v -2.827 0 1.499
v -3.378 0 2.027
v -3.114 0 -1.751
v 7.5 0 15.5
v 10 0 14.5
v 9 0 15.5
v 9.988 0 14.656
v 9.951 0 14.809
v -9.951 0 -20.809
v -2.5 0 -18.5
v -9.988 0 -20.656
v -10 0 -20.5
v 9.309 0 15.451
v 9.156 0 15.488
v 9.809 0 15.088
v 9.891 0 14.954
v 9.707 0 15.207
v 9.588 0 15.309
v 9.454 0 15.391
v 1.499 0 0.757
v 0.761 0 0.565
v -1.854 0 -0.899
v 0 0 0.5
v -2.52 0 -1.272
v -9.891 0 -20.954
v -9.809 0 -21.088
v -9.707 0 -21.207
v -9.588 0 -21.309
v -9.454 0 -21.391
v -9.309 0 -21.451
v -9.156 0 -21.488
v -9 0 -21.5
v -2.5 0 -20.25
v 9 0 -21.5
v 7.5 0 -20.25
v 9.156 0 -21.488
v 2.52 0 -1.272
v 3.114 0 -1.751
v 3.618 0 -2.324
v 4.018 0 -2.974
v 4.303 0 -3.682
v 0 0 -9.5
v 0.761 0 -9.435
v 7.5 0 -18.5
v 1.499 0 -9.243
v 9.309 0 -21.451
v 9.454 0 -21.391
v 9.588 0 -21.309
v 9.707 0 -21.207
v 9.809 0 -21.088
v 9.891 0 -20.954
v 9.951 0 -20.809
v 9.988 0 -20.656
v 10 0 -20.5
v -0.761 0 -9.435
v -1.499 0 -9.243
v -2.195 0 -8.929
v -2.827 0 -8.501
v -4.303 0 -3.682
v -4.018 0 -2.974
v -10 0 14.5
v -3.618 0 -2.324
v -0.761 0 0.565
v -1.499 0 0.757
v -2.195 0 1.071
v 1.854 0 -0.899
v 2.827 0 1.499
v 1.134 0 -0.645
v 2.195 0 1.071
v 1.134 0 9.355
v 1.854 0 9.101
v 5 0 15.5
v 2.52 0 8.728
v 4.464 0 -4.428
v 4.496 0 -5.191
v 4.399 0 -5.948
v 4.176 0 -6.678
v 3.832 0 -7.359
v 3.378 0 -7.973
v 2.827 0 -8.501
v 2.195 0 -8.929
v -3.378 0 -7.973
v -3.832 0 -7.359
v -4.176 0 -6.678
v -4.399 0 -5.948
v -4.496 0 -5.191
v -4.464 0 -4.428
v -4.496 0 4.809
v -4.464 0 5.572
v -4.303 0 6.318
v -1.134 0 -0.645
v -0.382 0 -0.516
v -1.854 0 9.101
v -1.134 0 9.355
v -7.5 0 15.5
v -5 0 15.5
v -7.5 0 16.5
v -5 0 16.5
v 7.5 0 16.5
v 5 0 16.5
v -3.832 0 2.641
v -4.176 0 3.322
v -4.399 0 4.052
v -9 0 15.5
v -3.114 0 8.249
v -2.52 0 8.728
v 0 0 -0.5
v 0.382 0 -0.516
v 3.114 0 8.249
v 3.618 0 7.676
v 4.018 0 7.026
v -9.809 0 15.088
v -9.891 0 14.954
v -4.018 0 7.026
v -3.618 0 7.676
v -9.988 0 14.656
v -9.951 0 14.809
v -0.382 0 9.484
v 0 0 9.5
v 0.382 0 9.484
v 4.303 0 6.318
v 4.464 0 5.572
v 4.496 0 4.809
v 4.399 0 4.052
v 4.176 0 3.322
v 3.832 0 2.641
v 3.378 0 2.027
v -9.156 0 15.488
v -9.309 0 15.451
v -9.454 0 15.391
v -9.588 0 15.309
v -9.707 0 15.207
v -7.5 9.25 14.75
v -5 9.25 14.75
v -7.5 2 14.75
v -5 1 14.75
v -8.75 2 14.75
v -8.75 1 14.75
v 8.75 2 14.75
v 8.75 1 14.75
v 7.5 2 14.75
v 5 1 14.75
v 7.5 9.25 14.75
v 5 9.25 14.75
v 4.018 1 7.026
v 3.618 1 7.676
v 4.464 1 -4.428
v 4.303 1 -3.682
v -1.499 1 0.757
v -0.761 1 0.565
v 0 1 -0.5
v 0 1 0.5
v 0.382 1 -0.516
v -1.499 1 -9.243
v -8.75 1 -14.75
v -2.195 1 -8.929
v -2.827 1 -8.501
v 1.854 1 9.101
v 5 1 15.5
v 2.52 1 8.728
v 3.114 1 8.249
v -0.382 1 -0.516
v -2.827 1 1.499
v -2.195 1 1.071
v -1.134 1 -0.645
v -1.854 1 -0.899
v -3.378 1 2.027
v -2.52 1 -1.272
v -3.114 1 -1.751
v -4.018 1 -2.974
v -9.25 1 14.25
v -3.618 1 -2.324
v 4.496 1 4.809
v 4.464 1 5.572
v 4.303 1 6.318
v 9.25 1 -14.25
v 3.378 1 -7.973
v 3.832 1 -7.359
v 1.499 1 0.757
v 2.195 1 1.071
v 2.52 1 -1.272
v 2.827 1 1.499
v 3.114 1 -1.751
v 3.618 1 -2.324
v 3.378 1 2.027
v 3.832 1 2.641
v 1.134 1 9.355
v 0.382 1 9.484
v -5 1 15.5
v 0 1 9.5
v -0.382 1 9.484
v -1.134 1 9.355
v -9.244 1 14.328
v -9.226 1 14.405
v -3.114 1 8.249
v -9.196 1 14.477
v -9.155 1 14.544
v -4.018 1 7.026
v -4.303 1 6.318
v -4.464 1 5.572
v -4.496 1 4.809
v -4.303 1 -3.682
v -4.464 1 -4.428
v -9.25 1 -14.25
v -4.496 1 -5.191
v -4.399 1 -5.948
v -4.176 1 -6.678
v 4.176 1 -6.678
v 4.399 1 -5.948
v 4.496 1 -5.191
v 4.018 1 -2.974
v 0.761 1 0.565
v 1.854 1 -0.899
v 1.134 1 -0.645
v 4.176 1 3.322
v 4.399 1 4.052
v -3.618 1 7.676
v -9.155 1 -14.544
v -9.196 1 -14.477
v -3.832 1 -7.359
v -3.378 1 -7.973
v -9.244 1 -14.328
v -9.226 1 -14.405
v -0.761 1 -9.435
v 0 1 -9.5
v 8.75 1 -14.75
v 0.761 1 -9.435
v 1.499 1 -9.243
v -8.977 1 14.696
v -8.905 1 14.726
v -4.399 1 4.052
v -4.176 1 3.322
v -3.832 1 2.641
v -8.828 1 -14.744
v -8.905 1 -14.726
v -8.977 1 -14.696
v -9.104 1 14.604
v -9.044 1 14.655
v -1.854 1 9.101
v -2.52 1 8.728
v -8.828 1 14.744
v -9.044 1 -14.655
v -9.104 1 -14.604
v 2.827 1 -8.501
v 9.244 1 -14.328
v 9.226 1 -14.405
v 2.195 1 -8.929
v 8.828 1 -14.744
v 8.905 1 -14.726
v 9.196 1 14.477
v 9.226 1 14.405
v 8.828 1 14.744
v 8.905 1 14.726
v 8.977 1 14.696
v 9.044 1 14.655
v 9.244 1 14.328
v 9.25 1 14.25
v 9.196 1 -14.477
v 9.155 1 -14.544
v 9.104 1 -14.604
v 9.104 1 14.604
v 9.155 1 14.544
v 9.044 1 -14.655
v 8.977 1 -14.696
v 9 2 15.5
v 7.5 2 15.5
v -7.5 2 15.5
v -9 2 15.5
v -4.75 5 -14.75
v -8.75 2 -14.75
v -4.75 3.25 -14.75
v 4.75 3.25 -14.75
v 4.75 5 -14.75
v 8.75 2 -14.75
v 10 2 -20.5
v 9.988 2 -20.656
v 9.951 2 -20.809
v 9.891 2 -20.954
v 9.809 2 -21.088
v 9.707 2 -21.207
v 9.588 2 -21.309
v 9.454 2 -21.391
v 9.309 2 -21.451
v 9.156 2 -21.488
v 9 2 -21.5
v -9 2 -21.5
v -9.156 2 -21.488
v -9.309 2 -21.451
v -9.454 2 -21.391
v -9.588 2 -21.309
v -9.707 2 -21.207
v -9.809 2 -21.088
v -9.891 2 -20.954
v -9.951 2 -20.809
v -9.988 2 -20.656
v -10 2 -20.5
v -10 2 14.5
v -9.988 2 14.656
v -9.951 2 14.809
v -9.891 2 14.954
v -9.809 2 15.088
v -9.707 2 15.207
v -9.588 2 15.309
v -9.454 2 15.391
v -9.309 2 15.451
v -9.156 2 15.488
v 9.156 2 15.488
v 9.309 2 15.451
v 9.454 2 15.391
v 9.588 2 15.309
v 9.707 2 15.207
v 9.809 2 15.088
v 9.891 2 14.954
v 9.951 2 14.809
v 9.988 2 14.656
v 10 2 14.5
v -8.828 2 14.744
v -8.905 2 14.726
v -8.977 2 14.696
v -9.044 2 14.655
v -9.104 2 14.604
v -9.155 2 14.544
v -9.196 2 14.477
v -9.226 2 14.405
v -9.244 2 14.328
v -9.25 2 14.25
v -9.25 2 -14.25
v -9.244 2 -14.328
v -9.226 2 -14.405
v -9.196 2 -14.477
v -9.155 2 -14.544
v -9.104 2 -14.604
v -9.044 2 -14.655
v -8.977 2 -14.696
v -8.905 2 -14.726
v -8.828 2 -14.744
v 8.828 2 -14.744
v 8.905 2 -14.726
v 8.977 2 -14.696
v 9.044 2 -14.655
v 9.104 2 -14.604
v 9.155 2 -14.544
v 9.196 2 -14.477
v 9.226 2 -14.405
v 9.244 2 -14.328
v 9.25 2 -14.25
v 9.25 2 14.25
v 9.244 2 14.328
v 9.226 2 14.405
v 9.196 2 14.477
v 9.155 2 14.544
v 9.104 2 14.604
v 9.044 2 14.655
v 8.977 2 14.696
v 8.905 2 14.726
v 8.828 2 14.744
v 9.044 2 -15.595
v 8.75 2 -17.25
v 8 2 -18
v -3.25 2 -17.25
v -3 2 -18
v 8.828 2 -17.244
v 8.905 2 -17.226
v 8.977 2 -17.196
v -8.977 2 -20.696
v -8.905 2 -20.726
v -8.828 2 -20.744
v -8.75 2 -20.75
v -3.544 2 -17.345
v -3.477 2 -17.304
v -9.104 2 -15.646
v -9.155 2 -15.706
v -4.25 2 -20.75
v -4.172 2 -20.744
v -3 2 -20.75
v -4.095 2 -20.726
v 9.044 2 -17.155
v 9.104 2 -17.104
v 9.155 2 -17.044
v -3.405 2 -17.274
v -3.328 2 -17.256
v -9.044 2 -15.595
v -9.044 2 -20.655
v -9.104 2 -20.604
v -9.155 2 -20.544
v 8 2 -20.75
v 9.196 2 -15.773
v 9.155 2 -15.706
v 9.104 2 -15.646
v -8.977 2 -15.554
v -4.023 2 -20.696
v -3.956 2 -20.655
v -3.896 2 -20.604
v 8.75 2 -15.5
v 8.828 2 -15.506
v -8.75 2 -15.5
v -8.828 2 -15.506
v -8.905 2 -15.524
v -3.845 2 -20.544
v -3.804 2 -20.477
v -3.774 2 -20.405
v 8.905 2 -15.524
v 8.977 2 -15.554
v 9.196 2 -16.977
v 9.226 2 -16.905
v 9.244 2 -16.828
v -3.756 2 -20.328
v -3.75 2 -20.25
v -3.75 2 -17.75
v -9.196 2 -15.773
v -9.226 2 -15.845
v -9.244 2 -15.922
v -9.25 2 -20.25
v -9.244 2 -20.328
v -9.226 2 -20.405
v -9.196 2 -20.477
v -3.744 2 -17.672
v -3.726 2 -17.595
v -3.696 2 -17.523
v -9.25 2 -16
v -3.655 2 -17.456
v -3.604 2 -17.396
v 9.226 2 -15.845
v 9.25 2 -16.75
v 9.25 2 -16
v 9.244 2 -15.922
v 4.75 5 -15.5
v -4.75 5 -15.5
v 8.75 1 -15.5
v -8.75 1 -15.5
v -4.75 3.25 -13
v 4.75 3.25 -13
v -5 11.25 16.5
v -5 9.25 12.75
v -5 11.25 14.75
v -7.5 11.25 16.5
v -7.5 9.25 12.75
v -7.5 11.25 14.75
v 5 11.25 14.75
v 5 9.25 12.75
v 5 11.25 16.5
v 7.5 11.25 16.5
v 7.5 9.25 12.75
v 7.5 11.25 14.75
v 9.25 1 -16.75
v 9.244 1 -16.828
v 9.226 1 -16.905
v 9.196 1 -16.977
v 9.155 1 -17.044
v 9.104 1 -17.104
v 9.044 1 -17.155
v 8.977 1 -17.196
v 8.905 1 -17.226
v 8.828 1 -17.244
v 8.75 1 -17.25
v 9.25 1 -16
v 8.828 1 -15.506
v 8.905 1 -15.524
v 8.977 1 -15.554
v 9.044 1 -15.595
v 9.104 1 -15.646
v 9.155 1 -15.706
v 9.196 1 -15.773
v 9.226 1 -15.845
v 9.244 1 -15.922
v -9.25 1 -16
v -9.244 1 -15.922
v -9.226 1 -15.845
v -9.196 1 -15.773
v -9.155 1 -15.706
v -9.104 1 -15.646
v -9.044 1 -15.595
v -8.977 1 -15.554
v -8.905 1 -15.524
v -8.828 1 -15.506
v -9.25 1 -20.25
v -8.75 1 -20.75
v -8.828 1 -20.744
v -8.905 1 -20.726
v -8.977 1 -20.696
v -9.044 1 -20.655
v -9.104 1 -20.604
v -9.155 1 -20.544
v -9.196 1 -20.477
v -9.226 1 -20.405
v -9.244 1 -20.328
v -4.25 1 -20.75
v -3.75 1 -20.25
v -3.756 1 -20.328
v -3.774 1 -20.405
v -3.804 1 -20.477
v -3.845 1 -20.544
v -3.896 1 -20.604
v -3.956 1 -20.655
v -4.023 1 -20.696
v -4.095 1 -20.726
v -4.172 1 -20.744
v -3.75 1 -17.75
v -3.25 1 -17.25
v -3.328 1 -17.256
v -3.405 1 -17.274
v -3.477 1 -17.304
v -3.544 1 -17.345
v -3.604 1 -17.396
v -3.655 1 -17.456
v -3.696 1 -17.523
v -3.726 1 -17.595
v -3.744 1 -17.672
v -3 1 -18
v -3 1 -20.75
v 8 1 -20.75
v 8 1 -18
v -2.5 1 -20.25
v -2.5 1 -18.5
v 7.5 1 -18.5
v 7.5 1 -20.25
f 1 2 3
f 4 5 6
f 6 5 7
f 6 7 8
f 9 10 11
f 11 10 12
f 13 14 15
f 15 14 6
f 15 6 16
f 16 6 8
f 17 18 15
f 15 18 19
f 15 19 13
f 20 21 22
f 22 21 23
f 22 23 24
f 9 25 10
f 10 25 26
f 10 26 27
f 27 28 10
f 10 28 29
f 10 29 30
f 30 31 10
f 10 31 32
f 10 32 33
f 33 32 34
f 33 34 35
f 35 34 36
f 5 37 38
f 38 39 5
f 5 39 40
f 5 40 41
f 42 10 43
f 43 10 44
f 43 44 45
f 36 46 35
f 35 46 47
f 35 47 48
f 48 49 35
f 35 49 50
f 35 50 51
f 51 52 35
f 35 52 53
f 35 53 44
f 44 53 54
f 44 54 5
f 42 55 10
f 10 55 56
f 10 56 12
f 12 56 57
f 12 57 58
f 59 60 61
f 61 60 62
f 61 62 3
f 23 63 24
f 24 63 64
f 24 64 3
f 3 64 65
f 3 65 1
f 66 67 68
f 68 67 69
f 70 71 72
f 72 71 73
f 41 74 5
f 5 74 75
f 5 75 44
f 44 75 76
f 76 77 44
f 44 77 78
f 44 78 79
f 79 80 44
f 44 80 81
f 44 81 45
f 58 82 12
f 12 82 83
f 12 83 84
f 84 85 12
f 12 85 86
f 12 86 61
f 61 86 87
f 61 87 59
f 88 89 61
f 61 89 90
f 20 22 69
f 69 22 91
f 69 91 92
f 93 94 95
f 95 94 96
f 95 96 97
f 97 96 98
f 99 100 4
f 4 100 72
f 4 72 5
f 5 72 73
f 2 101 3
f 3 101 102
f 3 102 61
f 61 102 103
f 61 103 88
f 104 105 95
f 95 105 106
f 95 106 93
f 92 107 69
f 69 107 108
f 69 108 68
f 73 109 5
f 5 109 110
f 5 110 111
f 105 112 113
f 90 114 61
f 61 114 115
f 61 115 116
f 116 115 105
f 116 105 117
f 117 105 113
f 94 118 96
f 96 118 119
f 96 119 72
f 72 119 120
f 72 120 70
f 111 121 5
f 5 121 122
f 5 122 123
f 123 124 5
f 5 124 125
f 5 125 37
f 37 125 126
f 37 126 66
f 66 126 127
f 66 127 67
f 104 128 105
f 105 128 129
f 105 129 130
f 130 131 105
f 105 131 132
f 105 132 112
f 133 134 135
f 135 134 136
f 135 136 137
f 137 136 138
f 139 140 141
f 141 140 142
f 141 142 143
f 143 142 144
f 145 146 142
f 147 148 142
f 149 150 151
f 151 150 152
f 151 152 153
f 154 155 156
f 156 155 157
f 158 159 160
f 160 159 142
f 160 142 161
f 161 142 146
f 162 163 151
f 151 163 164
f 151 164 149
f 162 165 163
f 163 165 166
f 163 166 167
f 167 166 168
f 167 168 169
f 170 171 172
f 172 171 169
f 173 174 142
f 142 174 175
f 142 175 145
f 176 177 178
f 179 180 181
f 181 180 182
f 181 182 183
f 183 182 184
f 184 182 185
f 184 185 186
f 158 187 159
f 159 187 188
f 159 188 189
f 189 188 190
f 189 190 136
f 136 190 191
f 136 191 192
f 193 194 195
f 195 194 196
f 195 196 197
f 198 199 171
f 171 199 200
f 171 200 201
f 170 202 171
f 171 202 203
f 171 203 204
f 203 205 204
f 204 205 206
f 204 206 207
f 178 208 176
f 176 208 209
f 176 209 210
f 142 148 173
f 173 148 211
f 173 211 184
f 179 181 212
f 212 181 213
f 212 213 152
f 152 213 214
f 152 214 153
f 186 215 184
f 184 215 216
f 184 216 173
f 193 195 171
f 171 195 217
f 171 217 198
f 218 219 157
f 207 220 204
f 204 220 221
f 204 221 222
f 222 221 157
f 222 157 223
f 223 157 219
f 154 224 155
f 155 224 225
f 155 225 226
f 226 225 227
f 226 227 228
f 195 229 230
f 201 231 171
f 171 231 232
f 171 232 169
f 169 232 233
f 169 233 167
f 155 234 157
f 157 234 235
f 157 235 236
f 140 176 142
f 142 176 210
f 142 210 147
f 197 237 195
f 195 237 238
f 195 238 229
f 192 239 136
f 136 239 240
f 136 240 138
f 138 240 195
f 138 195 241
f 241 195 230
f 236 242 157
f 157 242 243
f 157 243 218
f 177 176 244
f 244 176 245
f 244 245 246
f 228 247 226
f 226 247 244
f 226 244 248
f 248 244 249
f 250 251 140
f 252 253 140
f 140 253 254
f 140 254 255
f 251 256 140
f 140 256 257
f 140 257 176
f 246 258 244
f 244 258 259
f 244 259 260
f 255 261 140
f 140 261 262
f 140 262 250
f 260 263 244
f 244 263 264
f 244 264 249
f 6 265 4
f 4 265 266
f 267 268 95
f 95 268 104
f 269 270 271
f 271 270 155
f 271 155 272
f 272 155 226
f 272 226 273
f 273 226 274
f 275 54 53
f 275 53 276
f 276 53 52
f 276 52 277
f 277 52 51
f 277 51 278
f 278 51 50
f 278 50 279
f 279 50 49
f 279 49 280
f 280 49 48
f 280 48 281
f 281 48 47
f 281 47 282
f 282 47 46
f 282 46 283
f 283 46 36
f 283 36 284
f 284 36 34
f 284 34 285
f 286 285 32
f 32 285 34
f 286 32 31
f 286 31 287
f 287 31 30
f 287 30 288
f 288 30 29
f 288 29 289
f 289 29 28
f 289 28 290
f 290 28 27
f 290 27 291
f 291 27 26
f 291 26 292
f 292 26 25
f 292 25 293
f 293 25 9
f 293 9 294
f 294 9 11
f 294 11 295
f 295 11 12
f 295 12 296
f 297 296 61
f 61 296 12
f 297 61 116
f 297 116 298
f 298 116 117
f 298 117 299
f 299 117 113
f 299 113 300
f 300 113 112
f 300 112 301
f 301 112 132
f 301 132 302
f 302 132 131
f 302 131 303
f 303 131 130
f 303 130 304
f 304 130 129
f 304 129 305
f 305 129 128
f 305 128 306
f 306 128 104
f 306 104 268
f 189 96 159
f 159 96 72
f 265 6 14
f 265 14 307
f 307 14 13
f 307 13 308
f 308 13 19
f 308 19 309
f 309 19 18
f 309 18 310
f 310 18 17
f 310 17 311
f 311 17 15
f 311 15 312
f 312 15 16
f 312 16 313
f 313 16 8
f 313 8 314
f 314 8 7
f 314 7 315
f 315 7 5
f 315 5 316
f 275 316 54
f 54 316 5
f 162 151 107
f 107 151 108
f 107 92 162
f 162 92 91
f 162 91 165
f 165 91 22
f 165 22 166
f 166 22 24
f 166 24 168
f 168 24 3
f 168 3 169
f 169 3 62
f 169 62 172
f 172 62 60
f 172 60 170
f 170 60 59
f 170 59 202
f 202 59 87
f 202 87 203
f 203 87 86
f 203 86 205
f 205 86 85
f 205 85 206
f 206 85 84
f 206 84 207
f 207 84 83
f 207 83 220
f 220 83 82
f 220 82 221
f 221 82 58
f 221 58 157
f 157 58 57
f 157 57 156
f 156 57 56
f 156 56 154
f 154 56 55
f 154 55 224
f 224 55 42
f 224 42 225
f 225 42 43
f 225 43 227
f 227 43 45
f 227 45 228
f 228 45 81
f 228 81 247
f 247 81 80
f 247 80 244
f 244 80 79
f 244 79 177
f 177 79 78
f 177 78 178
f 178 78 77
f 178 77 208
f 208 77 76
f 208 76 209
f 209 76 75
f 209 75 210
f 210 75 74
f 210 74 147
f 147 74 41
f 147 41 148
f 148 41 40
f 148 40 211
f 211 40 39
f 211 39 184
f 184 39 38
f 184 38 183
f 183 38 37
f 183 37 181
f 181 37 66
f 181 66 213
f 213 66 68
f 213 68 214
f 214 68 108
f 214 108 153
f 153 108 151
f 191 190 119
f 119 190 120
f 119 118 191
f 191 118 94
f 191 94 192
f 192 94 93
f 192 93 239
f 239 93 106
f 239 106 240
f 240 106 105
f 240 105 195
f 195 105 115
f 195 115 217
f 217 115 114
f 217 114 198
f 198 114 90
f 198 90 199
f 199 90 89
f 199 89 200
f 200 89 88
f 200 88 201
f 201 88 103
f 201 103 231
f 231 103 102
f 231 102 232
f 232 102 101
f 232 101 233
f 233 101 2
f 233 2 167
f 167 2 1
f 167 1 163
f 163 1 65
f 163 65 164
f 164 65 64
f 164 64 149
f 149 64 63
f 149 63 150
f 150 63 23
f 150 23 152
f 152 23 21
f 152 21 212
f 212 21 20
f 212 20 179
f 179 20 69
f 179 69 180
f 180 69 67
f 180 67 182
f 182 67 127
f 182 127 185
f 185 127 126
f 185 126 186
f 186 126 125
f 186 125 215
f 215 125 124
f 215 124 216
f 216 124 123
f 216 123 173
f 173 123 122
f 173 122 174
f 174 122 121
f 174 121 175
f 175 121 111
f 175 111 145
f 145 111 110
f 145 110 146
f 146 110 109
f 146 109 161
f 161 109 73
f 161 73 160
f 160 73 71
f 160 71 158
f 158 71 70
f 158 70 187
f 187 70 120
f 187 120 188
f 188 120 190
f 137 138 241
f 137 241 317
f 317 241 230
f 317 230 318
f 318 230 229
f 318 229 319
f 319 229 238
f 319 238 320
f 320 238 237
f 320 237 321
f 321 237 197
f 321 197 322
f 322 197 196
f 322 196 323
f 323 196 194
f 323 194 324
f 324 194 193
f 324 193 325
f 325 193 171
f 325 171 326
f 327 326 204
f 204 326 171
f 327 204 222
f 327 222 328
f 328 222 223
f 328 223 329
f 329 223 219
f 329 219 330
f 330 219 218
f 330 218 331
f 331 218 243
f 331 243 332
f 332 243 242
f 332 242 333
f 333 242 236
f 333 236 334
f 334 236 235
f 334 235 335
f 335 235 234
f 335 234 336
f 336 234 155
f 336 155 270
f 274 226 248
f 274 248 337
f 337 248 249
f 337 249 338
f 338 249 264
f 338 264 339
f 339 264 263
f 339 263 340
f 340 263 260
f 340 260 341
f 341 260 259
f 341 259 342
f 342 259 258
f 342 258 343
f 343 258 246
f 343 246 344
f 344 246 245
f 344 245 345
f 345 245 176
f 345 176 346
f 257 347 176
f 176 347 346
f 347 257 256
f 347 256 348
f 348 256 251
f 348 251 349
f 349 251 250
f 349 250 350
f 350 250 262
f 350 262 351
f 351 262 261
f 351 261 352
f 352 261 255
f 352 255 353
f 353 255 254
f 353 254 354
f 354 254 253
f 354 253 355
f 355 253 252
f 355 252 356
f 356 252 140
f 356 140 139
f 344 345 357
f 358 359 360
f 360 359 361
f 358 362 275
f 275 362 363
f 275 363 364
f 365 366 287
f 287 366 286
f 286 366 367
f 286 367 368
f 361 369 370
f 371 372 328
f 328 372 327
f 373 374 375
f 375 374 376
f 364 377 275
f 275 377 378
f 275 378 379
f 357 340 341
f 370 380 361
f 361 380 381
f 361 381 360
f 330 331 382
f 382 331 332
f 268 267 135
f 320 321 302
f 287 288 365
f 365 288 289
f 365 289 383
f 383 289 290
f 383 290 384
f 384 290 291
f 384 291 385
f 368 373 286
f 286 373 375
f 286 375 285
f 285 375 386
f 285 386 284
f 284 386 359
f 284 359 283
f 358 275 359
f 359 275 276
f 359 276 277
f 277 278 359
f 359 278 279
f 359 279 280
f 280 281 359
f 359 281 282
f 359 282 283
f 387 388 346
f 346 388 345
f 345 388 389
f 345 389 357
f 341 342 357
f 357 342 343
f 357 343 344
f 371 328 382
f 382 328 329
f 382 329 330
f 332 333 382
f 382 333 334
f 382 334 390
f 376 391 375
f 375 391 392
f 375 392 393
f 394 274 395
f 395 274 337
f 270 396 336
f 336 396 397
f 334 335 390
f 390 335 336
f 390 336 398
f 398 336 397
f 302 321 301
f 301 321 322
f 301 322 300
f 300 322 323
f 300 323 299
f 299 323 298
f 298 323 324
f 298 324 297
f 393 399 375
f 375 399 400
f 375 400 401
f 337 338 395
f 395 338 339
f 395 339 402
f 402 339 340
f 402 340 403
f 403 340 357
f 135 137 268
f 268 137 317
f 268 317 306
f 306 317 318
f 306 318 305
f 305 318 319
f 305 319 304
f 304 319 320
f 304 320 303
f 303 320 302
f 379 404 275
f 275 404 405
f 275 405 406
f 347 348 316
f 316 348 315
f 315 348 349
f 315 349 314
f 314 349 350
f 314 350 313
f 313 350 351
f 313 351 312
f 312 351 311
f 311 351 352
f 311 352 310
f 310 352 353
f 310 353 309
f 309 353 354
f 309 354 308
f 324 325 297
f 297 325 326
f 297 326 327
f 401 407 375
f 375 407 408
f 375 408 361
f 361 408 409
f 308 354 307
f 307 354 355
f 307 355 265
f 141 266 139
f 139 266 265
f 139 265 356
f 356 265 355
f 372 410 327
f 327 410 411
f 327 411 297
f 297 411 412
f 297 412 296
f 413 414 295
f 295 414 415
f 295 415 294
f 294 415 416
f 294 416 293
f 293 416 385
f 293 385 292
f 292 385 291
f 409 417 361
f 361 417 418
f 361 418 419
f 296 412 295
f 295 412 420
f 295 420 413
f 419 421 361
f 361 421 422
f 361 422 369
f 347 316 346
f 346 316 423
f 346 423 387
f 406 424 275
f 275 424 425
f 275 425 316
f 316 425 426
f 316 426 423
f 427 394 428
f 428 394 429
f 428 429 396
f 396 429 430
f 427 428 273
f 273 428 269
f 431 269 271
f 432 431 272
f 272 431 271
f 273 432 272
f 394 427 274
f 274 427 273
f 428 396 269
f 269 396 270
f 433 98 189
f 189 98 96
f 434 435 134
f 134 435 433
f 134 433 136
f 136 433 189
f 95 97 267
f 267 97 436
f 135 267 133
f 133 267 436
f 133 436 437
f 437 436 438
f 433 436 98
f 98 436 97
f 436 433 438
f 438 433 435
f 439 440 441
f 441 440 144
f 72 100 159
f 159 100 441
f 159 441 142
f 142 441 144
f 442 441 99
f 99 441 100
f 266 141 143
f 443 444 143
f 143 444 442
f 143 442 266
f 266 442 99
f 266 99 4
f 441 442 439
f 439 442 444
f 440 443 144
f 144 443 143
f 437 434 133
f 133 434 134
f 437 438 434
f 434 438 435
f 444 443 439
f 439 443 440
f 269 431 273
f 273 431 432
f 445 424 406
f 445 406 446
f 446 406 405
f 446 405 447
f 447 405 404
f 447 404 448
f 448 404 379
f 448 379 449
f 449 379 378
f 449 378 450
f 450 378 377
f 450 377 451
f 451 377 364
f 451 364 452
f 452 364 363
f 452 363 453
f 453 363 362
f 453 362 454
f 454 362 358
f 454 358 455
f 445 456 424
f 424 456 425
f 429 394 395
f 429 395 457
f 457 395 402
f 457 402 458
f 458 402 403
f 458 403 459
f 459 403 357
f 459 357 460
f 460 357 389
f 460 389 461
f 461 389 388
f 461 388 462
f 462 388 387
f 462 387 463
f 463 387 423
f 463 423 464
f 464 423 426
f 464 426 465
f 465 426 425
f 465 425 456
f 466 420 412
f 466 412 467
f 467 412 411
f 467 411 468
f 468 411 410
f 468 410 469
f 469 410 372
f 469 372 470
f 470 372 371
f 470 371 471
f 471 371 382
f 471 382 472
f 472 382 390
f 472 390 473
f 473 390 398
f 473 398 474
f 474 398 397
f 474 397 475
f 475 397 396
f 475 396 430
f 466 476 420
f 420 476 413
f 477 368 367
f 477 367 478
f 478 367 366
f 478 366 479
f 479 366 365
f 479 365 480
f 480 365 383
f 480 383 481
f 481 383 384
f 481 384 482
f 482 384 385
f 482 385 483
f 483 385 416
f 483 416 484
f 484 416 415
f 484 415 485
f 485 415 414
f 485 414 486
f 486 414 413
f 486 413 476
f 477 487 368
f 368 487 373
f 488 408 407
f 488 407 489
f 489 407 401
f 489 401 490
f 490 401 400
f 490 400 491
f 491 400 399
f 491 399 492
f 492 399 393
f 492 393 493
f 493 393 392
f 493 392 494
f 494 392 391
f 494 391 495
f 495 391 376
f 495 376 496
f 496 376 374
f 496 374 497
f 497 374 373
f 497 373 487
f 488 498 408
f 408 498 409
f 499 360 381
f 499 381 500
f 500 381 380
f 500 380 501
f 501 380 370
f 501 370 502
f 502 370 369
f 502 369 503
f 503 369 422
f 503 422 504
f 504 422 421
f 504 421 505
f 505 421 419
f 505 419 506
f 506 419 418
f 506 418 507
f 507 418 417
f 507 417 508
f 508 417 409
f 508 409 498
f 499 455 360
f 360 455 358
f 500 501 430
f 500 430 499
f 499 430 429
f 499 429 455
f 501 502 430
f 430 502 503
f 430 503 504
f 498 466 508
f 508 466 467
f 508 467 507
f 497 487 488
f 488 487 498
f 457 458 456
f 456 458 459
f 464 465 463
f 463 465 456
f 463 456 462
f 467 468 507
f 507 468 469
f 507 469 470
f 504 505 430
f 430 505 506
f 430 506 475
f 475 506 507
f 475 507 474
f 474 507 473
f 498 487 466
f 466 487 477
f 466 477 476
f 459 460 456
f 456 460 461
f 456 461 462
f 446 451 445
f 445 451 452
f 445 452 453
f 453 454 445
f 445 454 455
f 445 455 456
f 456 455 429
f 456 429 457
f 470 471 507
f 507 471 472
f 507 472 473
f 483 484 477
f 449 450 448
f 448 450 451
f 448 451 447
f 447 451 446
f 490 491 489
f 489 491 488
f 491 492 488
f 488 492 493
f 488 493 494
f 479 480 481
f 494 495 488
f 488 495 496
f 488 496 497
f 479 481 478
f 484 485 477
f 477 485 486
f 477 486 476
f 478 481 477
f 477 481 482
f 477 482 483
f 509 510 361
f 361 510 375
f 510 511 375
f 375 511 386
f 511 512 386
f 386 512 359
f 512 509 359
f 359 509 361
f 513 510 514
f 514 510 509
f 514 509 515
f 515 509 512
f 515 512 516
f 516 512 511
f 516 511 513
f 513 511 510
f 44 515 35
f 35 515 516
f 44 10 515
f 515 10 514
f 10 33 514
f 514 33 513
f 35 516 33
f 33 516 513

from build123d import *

# Parameters (mm, degrees)
BOSS_EXTRUDE1_DEPTH  = 1
PCB_HOLDER_52_R      = 4.5
BOSS_EXTRUDE2_DEPTH  = 1
BOSS_EXTRUDE3_DEPTH  = 2
PCB_HOLDER_57_W      = 17.5
PCB_HOLDER_57_H      = 0.75
BOSS_EXTRUDE7_DEPTH  = 5
SKETCH6_W            = 9.5
SKETCH6_H            = 1.75
BOSS_EXTRUDE9_DEPTH  = 1.75
CUT_EXTRUDE7_DEPTH   = 0.75
PCB_HOLDER_58_W      = 2.5
PCB_HOLDER_58_H      = 1
PCB_HOLDER_58_H_2    = 0.75
BOSS_EXTRUDE10_DEPTH = 11.25
SKETCH10_W           = 2.5
SKETCH10_H           = 2
BOSS_EXTRUDE11_DEPTH = 2
CUT_EXTRUDE8_DEPTH   = 15
CUT_EXTRUDE12_DEPTH  = 9.5
SKETCH12_W           = 11
SKETCH12_H           = 2.75
SKETCH12_W_2         = 10
SKETCH12_H_2         = 1.75
CUT_EXTRUDE15_DEPTH  = 1
SKETCH12_3_W         = 10
SKETCH12_3_H         = 1.75
CUT_EXTRUDE16_DEPTH  = 2


with BuildPart() as part:
    # PCB holder → Boss-Extrude1 (new body)
    with BuildSketch(Plane(origin=(0, 0, 0), x_dir=(1, 0, 0), z_dir=(0, 1, 0))):
        with BuildLine():
            Line((9, 21.5), (-9, 21.5))
            ThreePointArc((-9, 21.5), (-9.707106781, 21.207106781), (-10, 20.5))
            Line((-10, 20.5), (-10, -14.5))
            ThreePointArc((-10, -14.5), (-9.707106781, -15.207106781), (-9, -15.5))
            Line((-9, -15.5), (9, -15.5))
            ThreePointArc((9, -15.5), (9.707106781, -15.207106781), (10, -14.5))
            Line((10, -14.5), (10, 20.5))
            ThreePointArc((10, 20.5), (9.707106781, 21.207106781), (9, 21.5))
        make_face()
        with BuildLine():
            Line((9.25, 14.25), (9.25, -14.25))
            ThreePointArc((9.25, -14.25), (9.103553391, -14.603553391), (8.75, -14.75))
            Line((8.75, -14.75), (-8.75, -14.75))
            ThreePointArc((-8.75, -14.75), (-9.103553391, -14.603553391), (-9.25, -14.25))
            Line((-9.25, -14.25), (-9.25, 14.25))
            ThreePointArc((-9.25, 14.25), (-9.103553391, 14.603553391), (-8.75, 14.75))
            Line((-8.75, 14.75), (8.75, 14.75))
            ThreePointArc((8.75, 14.75), (9.103553391, 14.603553391), (9.25, 14.25))
        make_face(mode=Mode.SUBTRACT)
    extrude(amount=BOSS_EXTRUDE1_DEPTH)

    # PCB holder<52> → Boss-Extrude2 (add)
    with BuildSketch(Plane(origin=(0, 0, 0), x_dir=(1, 0, 0), z_dir=(0, 1, 0))):
        with BuildLine():
            Line((-9.25, 14.25), (-9.25, -14.25))
            ThreePointArc((-9.25, -14.25), (-9.103553391, -14.603553391), (-8.75, -14.75))
            Line((-8.75, -14.75), (8.75, -14.75))
            ThreePointArc((8.75, -14.75), (9.103553391, -14.603553391), (9.25, -14.25))
            Line((9.25, -14.25), (9.25, 14.25))
            ThreePointArc((9.25, 14.25), (9.103553391, 14.603553391), (8.75, 14.75))
            Line((8.75, 14.75), (-8.75, 14.75))
            ThreePointArc((-8.75, 14.75), (-9.103553391, 14.603553391), (-9.25, 14.25))
        make_face()
        with Locations(Location((0, -5, 0), (0, 0, 270))):
            Circle(PCB_HOLDER_52_R, mode=Mode.SUBTRACT)
        with Locations(Location((0, 5, 0), (0, 0, 270))):
            Circle(PCB_HOLDER_52_R, mode=Mode.SUBTRACT)
    extrude(amount=BOSS_EXTRUDE2_DEPTH)

    # PCB holder<55> → Boss-Extrude3 (add)
    with BuildSketch(Plane(origin=(0, 0, 0), x_dir=(1, 0, 0), z_dir=(0, 1, 0))):
        with BuildLine():
            Line((8.75, 15.5), (8.75, 14.75))
            ThreePointArc((8.75, 14.75), (9.103553391, 14.603553391), (9.25, 14.25))
            Line((9.25, 14.25), (9.25, -14.25))
            ThreePointArc((9.25, -14.25), (9.103553391, -14.603553391), (8.75, -14.75))
            Line((8.75, -14.75), (7.5, -14.75))
            Line((7.5, -14.75), (7.5, -15.5))
            Line((7.5, -15.5), (9, -15.5))
            ThreePointArc((9, -15.5), (9.707106781, -15.207106781), (10, -14.5))
            Line((10, -14.5), (10, 20.5))
            ThreePointArc((10, 20.5), (9.707106781, 21.207106781), (9, 21.5))
            Line((9, 21.5), (-9, 21.5))
            ThreePointArc((-9, 21.5), (-9.707106781, 21.207106781), (-10, 20.5))
            Line((-10, 20.5), (-10, -14.5))
            ThreePointArc((-10, -14.5), (-9.707106781, -15.207106781), (-9, -15.5))
            Line((-9, -15.5), (-7.5, -15.5))
            Line((-7.5, -15.5), (-7.5, -14.75))
            Line((-7.5, -14.75), (-8.75, -14.75))
            ThreePointArc((-8.75, -14.75), (-9.103553391, -14.603553391), (-9.25, -14.25))
            Line((-9.25, -14.25), (-9.25, 14.25))
            ThreePointArc((-9.25, 14.25), (-9.103553391, 14.603553391), (-8.75, 14.75))
            Line((-8.75, 14.75), (-8.75, 15.5))
            Line((-8.75, 15.5), (8.75, 15.5))
        make_face()
    extrude(amount=BOSS_EXTRUDE3_DEPTH)

    # PCB holder<57> → Boss-Extrude7 (add)
    with BuildSketch(Plane(origin=(0, 0, 0), x_dir=(1, 0, 0), z_dir=(0, 1, 0))):
        with Locations((0, 15.125)):
            Rectangle(PCB_HOLDER_57_W, PCB_HOLDER_57_H)
    extrude(amount=BOSS_EXTRUDE7_DEPTH)

    # Sketch6 → Boss-Extrude9 (add)
    with BuildSketch(Plane.XY.offset(-14.75)):
        with Locations((0, 4.125)):
            Rectangle(SKETCH6_W, SKETCH6_H)
    extrude(amount=BOSS_EXTRUDE9_DEPTH)

    # Sketch8 → Cut-Extrude7 (cut)
    with BuildSketch(Plane.XY.offset(-14.75)):
        Polygon((4.75, 5), (8.75, 2), (8.75, 5), align=None)
        Polygon((-4.75, 5), (-8.75, 2), (-8.75, 5), align=None)
    extrude(amount=-CUT_EXTRUDE7_DEPTH, mode=Mode.SUBTRACT)

    # PCB holder<58> → Boss-Extrude10 (add)
    with BuildSketch(Plane(origin=(0, 0, 0), x_dir=(1, 0, 0), z_dir=(0, 1, 0))):
        with Locations((-6.25, -16)):
            Rectangle(PCB_HOLDER_58_W, PCB_HOLDER_58_H)
        with Locations((-6.25, -15.125)):
            Rectangle(PCB_HOLDER_58_W, PCB_HOLDER_58_H_2)
        with Locations((6.25, -16)):
            Rectangle(PCB_HOLDER_58_W, PCB_HOLDER_58_H)
        with Locations((6.25, -15.125)):
            Rectangle(PCB_HOLDER_58_W, PCB_HOLDER_58_H_2)
    extrude(amount=BOSS_EXTRUDE10_DEPTH)

    # Sketch10 → Boss-Extrude11 (add)
    with BuildSketch(Plane(origin=(0, 0, 14.75), x_dir=(-1, 0, 0), z_dir=(0, 0, -1))):
        with Locations((-6.25, 10.25)):
            Rectangle(SKETCH10_W, SKETCH10_H)
        with Locations((6.25, 10.25)):
            Rectangle(SKETCH10_W, SKETCH10_H)
    extrude(amount=BOSS_EXTRUDE11_DEPTH)

    # Sketch11 → Cut-Extrude8 (cut)
    with BuildSketch(Plane(origin=(7.5, 0, 0), x_dir=(0, 0, -1), z_dir=(1, 0, 0))):
        Polygon((-14.75, 11.25), (-12.75, 9.25), (-12.75, 11.25), align=None)
    extrude(amount=-CUT_EXTRUDE8_DEPTH, mode=Mode.SUBTRACT)

    # Sketch7 → Cut-Extrude12 (cut)
    with BuildSketch(Plane(origin=(4.75, 0, 0), x_dir=(0, 0, -1), z_dir=(1, 0, 0))):
        Polygon((13, 3.25), (14.75, 5), (13, 5), align=None)
    extrude(amount=-CUT_EXTRUDE12_DEPTH, mode=Mode.SUBTRACT)

    # Sketch12 → Cut-Extrude15 (cut)
    # profile 1 of 2: a face of its own
    with BuildSketch(Plane(origin=(0, 2, 0), x_dir=(1, 0, 0), z_dir=(0, 1, 0))):
        with BuildLine():
            Line((9.25, 16), (9.25, 16.75))
            ThreePointArc((9.25, 16.75), (9.103553391, 17.103553391), (8.75, 17.25))
            Line((8.75, 17.25), (-3.25, 17.25))
            ThreePointArc((-3.25, 17.25), (-3.603553391, 17.396446609), (-3.75, 17.75))
            Line((-3.75, 17.75), (-3.75, 20.25))
            ThreePointArc((-3.75, 20.25), (-3.896446609, 20.603553391), (-4.25, 20.75))
            Line((-4.25, 20.75), (-8.75, 20.75))
            ThreePointArc((-8.75, 20.75), (-9.103553391, 20.603553391), (-9.25, 20.25))
            Line((-9.25, 20.25), (-9.25, 16))
            ThreePointArc((-9.25, 16), (-9.103553391, 15.646446609), (-8.75, 15.5))
            Line((-8.75, 15.5), (8.75, 15.5))
            ThreePointArc((8.75, 15.5), (9.103553391, 15.646446609), (9.25, 16))
        make_face()
    # profile 2 of 2: a face of its own
    with BuildSketch(Plane(origin=(0, 2, 0), x_dir=(1, 0, 0), z_dir=(0, 1, 0))):
        with Locations((2.5, 19.375)):
            Rectangle(SKETCH12_W, SKETCH12_H)
        with Locations((2.5, 19.375)):
            Rectangle(SKETCH12_W_2, SKETCH12_H_2, mode=Mode.SUBTRACT)
    extrude(amount=-CUT_EXTRUDE15_DEPTH, mode=Mode.SUBTRACT)

    # Sketch12<3> → Cut-Extrude16 (cut)
    with BuildSketch(Plane(origin=(0, 2, 0), x_dir=(1, 0, 0), z_dir=(0, 1, 0))):
        with Locations((2.5, 19.375)):
            Rectangle(SKETCH12_3_W, SKETCH12_3_H)
    extrude(amount=-CUT_EXTRUDE16_DEPTH, mode=Mode.SUBTRACT)


solid = part.part
